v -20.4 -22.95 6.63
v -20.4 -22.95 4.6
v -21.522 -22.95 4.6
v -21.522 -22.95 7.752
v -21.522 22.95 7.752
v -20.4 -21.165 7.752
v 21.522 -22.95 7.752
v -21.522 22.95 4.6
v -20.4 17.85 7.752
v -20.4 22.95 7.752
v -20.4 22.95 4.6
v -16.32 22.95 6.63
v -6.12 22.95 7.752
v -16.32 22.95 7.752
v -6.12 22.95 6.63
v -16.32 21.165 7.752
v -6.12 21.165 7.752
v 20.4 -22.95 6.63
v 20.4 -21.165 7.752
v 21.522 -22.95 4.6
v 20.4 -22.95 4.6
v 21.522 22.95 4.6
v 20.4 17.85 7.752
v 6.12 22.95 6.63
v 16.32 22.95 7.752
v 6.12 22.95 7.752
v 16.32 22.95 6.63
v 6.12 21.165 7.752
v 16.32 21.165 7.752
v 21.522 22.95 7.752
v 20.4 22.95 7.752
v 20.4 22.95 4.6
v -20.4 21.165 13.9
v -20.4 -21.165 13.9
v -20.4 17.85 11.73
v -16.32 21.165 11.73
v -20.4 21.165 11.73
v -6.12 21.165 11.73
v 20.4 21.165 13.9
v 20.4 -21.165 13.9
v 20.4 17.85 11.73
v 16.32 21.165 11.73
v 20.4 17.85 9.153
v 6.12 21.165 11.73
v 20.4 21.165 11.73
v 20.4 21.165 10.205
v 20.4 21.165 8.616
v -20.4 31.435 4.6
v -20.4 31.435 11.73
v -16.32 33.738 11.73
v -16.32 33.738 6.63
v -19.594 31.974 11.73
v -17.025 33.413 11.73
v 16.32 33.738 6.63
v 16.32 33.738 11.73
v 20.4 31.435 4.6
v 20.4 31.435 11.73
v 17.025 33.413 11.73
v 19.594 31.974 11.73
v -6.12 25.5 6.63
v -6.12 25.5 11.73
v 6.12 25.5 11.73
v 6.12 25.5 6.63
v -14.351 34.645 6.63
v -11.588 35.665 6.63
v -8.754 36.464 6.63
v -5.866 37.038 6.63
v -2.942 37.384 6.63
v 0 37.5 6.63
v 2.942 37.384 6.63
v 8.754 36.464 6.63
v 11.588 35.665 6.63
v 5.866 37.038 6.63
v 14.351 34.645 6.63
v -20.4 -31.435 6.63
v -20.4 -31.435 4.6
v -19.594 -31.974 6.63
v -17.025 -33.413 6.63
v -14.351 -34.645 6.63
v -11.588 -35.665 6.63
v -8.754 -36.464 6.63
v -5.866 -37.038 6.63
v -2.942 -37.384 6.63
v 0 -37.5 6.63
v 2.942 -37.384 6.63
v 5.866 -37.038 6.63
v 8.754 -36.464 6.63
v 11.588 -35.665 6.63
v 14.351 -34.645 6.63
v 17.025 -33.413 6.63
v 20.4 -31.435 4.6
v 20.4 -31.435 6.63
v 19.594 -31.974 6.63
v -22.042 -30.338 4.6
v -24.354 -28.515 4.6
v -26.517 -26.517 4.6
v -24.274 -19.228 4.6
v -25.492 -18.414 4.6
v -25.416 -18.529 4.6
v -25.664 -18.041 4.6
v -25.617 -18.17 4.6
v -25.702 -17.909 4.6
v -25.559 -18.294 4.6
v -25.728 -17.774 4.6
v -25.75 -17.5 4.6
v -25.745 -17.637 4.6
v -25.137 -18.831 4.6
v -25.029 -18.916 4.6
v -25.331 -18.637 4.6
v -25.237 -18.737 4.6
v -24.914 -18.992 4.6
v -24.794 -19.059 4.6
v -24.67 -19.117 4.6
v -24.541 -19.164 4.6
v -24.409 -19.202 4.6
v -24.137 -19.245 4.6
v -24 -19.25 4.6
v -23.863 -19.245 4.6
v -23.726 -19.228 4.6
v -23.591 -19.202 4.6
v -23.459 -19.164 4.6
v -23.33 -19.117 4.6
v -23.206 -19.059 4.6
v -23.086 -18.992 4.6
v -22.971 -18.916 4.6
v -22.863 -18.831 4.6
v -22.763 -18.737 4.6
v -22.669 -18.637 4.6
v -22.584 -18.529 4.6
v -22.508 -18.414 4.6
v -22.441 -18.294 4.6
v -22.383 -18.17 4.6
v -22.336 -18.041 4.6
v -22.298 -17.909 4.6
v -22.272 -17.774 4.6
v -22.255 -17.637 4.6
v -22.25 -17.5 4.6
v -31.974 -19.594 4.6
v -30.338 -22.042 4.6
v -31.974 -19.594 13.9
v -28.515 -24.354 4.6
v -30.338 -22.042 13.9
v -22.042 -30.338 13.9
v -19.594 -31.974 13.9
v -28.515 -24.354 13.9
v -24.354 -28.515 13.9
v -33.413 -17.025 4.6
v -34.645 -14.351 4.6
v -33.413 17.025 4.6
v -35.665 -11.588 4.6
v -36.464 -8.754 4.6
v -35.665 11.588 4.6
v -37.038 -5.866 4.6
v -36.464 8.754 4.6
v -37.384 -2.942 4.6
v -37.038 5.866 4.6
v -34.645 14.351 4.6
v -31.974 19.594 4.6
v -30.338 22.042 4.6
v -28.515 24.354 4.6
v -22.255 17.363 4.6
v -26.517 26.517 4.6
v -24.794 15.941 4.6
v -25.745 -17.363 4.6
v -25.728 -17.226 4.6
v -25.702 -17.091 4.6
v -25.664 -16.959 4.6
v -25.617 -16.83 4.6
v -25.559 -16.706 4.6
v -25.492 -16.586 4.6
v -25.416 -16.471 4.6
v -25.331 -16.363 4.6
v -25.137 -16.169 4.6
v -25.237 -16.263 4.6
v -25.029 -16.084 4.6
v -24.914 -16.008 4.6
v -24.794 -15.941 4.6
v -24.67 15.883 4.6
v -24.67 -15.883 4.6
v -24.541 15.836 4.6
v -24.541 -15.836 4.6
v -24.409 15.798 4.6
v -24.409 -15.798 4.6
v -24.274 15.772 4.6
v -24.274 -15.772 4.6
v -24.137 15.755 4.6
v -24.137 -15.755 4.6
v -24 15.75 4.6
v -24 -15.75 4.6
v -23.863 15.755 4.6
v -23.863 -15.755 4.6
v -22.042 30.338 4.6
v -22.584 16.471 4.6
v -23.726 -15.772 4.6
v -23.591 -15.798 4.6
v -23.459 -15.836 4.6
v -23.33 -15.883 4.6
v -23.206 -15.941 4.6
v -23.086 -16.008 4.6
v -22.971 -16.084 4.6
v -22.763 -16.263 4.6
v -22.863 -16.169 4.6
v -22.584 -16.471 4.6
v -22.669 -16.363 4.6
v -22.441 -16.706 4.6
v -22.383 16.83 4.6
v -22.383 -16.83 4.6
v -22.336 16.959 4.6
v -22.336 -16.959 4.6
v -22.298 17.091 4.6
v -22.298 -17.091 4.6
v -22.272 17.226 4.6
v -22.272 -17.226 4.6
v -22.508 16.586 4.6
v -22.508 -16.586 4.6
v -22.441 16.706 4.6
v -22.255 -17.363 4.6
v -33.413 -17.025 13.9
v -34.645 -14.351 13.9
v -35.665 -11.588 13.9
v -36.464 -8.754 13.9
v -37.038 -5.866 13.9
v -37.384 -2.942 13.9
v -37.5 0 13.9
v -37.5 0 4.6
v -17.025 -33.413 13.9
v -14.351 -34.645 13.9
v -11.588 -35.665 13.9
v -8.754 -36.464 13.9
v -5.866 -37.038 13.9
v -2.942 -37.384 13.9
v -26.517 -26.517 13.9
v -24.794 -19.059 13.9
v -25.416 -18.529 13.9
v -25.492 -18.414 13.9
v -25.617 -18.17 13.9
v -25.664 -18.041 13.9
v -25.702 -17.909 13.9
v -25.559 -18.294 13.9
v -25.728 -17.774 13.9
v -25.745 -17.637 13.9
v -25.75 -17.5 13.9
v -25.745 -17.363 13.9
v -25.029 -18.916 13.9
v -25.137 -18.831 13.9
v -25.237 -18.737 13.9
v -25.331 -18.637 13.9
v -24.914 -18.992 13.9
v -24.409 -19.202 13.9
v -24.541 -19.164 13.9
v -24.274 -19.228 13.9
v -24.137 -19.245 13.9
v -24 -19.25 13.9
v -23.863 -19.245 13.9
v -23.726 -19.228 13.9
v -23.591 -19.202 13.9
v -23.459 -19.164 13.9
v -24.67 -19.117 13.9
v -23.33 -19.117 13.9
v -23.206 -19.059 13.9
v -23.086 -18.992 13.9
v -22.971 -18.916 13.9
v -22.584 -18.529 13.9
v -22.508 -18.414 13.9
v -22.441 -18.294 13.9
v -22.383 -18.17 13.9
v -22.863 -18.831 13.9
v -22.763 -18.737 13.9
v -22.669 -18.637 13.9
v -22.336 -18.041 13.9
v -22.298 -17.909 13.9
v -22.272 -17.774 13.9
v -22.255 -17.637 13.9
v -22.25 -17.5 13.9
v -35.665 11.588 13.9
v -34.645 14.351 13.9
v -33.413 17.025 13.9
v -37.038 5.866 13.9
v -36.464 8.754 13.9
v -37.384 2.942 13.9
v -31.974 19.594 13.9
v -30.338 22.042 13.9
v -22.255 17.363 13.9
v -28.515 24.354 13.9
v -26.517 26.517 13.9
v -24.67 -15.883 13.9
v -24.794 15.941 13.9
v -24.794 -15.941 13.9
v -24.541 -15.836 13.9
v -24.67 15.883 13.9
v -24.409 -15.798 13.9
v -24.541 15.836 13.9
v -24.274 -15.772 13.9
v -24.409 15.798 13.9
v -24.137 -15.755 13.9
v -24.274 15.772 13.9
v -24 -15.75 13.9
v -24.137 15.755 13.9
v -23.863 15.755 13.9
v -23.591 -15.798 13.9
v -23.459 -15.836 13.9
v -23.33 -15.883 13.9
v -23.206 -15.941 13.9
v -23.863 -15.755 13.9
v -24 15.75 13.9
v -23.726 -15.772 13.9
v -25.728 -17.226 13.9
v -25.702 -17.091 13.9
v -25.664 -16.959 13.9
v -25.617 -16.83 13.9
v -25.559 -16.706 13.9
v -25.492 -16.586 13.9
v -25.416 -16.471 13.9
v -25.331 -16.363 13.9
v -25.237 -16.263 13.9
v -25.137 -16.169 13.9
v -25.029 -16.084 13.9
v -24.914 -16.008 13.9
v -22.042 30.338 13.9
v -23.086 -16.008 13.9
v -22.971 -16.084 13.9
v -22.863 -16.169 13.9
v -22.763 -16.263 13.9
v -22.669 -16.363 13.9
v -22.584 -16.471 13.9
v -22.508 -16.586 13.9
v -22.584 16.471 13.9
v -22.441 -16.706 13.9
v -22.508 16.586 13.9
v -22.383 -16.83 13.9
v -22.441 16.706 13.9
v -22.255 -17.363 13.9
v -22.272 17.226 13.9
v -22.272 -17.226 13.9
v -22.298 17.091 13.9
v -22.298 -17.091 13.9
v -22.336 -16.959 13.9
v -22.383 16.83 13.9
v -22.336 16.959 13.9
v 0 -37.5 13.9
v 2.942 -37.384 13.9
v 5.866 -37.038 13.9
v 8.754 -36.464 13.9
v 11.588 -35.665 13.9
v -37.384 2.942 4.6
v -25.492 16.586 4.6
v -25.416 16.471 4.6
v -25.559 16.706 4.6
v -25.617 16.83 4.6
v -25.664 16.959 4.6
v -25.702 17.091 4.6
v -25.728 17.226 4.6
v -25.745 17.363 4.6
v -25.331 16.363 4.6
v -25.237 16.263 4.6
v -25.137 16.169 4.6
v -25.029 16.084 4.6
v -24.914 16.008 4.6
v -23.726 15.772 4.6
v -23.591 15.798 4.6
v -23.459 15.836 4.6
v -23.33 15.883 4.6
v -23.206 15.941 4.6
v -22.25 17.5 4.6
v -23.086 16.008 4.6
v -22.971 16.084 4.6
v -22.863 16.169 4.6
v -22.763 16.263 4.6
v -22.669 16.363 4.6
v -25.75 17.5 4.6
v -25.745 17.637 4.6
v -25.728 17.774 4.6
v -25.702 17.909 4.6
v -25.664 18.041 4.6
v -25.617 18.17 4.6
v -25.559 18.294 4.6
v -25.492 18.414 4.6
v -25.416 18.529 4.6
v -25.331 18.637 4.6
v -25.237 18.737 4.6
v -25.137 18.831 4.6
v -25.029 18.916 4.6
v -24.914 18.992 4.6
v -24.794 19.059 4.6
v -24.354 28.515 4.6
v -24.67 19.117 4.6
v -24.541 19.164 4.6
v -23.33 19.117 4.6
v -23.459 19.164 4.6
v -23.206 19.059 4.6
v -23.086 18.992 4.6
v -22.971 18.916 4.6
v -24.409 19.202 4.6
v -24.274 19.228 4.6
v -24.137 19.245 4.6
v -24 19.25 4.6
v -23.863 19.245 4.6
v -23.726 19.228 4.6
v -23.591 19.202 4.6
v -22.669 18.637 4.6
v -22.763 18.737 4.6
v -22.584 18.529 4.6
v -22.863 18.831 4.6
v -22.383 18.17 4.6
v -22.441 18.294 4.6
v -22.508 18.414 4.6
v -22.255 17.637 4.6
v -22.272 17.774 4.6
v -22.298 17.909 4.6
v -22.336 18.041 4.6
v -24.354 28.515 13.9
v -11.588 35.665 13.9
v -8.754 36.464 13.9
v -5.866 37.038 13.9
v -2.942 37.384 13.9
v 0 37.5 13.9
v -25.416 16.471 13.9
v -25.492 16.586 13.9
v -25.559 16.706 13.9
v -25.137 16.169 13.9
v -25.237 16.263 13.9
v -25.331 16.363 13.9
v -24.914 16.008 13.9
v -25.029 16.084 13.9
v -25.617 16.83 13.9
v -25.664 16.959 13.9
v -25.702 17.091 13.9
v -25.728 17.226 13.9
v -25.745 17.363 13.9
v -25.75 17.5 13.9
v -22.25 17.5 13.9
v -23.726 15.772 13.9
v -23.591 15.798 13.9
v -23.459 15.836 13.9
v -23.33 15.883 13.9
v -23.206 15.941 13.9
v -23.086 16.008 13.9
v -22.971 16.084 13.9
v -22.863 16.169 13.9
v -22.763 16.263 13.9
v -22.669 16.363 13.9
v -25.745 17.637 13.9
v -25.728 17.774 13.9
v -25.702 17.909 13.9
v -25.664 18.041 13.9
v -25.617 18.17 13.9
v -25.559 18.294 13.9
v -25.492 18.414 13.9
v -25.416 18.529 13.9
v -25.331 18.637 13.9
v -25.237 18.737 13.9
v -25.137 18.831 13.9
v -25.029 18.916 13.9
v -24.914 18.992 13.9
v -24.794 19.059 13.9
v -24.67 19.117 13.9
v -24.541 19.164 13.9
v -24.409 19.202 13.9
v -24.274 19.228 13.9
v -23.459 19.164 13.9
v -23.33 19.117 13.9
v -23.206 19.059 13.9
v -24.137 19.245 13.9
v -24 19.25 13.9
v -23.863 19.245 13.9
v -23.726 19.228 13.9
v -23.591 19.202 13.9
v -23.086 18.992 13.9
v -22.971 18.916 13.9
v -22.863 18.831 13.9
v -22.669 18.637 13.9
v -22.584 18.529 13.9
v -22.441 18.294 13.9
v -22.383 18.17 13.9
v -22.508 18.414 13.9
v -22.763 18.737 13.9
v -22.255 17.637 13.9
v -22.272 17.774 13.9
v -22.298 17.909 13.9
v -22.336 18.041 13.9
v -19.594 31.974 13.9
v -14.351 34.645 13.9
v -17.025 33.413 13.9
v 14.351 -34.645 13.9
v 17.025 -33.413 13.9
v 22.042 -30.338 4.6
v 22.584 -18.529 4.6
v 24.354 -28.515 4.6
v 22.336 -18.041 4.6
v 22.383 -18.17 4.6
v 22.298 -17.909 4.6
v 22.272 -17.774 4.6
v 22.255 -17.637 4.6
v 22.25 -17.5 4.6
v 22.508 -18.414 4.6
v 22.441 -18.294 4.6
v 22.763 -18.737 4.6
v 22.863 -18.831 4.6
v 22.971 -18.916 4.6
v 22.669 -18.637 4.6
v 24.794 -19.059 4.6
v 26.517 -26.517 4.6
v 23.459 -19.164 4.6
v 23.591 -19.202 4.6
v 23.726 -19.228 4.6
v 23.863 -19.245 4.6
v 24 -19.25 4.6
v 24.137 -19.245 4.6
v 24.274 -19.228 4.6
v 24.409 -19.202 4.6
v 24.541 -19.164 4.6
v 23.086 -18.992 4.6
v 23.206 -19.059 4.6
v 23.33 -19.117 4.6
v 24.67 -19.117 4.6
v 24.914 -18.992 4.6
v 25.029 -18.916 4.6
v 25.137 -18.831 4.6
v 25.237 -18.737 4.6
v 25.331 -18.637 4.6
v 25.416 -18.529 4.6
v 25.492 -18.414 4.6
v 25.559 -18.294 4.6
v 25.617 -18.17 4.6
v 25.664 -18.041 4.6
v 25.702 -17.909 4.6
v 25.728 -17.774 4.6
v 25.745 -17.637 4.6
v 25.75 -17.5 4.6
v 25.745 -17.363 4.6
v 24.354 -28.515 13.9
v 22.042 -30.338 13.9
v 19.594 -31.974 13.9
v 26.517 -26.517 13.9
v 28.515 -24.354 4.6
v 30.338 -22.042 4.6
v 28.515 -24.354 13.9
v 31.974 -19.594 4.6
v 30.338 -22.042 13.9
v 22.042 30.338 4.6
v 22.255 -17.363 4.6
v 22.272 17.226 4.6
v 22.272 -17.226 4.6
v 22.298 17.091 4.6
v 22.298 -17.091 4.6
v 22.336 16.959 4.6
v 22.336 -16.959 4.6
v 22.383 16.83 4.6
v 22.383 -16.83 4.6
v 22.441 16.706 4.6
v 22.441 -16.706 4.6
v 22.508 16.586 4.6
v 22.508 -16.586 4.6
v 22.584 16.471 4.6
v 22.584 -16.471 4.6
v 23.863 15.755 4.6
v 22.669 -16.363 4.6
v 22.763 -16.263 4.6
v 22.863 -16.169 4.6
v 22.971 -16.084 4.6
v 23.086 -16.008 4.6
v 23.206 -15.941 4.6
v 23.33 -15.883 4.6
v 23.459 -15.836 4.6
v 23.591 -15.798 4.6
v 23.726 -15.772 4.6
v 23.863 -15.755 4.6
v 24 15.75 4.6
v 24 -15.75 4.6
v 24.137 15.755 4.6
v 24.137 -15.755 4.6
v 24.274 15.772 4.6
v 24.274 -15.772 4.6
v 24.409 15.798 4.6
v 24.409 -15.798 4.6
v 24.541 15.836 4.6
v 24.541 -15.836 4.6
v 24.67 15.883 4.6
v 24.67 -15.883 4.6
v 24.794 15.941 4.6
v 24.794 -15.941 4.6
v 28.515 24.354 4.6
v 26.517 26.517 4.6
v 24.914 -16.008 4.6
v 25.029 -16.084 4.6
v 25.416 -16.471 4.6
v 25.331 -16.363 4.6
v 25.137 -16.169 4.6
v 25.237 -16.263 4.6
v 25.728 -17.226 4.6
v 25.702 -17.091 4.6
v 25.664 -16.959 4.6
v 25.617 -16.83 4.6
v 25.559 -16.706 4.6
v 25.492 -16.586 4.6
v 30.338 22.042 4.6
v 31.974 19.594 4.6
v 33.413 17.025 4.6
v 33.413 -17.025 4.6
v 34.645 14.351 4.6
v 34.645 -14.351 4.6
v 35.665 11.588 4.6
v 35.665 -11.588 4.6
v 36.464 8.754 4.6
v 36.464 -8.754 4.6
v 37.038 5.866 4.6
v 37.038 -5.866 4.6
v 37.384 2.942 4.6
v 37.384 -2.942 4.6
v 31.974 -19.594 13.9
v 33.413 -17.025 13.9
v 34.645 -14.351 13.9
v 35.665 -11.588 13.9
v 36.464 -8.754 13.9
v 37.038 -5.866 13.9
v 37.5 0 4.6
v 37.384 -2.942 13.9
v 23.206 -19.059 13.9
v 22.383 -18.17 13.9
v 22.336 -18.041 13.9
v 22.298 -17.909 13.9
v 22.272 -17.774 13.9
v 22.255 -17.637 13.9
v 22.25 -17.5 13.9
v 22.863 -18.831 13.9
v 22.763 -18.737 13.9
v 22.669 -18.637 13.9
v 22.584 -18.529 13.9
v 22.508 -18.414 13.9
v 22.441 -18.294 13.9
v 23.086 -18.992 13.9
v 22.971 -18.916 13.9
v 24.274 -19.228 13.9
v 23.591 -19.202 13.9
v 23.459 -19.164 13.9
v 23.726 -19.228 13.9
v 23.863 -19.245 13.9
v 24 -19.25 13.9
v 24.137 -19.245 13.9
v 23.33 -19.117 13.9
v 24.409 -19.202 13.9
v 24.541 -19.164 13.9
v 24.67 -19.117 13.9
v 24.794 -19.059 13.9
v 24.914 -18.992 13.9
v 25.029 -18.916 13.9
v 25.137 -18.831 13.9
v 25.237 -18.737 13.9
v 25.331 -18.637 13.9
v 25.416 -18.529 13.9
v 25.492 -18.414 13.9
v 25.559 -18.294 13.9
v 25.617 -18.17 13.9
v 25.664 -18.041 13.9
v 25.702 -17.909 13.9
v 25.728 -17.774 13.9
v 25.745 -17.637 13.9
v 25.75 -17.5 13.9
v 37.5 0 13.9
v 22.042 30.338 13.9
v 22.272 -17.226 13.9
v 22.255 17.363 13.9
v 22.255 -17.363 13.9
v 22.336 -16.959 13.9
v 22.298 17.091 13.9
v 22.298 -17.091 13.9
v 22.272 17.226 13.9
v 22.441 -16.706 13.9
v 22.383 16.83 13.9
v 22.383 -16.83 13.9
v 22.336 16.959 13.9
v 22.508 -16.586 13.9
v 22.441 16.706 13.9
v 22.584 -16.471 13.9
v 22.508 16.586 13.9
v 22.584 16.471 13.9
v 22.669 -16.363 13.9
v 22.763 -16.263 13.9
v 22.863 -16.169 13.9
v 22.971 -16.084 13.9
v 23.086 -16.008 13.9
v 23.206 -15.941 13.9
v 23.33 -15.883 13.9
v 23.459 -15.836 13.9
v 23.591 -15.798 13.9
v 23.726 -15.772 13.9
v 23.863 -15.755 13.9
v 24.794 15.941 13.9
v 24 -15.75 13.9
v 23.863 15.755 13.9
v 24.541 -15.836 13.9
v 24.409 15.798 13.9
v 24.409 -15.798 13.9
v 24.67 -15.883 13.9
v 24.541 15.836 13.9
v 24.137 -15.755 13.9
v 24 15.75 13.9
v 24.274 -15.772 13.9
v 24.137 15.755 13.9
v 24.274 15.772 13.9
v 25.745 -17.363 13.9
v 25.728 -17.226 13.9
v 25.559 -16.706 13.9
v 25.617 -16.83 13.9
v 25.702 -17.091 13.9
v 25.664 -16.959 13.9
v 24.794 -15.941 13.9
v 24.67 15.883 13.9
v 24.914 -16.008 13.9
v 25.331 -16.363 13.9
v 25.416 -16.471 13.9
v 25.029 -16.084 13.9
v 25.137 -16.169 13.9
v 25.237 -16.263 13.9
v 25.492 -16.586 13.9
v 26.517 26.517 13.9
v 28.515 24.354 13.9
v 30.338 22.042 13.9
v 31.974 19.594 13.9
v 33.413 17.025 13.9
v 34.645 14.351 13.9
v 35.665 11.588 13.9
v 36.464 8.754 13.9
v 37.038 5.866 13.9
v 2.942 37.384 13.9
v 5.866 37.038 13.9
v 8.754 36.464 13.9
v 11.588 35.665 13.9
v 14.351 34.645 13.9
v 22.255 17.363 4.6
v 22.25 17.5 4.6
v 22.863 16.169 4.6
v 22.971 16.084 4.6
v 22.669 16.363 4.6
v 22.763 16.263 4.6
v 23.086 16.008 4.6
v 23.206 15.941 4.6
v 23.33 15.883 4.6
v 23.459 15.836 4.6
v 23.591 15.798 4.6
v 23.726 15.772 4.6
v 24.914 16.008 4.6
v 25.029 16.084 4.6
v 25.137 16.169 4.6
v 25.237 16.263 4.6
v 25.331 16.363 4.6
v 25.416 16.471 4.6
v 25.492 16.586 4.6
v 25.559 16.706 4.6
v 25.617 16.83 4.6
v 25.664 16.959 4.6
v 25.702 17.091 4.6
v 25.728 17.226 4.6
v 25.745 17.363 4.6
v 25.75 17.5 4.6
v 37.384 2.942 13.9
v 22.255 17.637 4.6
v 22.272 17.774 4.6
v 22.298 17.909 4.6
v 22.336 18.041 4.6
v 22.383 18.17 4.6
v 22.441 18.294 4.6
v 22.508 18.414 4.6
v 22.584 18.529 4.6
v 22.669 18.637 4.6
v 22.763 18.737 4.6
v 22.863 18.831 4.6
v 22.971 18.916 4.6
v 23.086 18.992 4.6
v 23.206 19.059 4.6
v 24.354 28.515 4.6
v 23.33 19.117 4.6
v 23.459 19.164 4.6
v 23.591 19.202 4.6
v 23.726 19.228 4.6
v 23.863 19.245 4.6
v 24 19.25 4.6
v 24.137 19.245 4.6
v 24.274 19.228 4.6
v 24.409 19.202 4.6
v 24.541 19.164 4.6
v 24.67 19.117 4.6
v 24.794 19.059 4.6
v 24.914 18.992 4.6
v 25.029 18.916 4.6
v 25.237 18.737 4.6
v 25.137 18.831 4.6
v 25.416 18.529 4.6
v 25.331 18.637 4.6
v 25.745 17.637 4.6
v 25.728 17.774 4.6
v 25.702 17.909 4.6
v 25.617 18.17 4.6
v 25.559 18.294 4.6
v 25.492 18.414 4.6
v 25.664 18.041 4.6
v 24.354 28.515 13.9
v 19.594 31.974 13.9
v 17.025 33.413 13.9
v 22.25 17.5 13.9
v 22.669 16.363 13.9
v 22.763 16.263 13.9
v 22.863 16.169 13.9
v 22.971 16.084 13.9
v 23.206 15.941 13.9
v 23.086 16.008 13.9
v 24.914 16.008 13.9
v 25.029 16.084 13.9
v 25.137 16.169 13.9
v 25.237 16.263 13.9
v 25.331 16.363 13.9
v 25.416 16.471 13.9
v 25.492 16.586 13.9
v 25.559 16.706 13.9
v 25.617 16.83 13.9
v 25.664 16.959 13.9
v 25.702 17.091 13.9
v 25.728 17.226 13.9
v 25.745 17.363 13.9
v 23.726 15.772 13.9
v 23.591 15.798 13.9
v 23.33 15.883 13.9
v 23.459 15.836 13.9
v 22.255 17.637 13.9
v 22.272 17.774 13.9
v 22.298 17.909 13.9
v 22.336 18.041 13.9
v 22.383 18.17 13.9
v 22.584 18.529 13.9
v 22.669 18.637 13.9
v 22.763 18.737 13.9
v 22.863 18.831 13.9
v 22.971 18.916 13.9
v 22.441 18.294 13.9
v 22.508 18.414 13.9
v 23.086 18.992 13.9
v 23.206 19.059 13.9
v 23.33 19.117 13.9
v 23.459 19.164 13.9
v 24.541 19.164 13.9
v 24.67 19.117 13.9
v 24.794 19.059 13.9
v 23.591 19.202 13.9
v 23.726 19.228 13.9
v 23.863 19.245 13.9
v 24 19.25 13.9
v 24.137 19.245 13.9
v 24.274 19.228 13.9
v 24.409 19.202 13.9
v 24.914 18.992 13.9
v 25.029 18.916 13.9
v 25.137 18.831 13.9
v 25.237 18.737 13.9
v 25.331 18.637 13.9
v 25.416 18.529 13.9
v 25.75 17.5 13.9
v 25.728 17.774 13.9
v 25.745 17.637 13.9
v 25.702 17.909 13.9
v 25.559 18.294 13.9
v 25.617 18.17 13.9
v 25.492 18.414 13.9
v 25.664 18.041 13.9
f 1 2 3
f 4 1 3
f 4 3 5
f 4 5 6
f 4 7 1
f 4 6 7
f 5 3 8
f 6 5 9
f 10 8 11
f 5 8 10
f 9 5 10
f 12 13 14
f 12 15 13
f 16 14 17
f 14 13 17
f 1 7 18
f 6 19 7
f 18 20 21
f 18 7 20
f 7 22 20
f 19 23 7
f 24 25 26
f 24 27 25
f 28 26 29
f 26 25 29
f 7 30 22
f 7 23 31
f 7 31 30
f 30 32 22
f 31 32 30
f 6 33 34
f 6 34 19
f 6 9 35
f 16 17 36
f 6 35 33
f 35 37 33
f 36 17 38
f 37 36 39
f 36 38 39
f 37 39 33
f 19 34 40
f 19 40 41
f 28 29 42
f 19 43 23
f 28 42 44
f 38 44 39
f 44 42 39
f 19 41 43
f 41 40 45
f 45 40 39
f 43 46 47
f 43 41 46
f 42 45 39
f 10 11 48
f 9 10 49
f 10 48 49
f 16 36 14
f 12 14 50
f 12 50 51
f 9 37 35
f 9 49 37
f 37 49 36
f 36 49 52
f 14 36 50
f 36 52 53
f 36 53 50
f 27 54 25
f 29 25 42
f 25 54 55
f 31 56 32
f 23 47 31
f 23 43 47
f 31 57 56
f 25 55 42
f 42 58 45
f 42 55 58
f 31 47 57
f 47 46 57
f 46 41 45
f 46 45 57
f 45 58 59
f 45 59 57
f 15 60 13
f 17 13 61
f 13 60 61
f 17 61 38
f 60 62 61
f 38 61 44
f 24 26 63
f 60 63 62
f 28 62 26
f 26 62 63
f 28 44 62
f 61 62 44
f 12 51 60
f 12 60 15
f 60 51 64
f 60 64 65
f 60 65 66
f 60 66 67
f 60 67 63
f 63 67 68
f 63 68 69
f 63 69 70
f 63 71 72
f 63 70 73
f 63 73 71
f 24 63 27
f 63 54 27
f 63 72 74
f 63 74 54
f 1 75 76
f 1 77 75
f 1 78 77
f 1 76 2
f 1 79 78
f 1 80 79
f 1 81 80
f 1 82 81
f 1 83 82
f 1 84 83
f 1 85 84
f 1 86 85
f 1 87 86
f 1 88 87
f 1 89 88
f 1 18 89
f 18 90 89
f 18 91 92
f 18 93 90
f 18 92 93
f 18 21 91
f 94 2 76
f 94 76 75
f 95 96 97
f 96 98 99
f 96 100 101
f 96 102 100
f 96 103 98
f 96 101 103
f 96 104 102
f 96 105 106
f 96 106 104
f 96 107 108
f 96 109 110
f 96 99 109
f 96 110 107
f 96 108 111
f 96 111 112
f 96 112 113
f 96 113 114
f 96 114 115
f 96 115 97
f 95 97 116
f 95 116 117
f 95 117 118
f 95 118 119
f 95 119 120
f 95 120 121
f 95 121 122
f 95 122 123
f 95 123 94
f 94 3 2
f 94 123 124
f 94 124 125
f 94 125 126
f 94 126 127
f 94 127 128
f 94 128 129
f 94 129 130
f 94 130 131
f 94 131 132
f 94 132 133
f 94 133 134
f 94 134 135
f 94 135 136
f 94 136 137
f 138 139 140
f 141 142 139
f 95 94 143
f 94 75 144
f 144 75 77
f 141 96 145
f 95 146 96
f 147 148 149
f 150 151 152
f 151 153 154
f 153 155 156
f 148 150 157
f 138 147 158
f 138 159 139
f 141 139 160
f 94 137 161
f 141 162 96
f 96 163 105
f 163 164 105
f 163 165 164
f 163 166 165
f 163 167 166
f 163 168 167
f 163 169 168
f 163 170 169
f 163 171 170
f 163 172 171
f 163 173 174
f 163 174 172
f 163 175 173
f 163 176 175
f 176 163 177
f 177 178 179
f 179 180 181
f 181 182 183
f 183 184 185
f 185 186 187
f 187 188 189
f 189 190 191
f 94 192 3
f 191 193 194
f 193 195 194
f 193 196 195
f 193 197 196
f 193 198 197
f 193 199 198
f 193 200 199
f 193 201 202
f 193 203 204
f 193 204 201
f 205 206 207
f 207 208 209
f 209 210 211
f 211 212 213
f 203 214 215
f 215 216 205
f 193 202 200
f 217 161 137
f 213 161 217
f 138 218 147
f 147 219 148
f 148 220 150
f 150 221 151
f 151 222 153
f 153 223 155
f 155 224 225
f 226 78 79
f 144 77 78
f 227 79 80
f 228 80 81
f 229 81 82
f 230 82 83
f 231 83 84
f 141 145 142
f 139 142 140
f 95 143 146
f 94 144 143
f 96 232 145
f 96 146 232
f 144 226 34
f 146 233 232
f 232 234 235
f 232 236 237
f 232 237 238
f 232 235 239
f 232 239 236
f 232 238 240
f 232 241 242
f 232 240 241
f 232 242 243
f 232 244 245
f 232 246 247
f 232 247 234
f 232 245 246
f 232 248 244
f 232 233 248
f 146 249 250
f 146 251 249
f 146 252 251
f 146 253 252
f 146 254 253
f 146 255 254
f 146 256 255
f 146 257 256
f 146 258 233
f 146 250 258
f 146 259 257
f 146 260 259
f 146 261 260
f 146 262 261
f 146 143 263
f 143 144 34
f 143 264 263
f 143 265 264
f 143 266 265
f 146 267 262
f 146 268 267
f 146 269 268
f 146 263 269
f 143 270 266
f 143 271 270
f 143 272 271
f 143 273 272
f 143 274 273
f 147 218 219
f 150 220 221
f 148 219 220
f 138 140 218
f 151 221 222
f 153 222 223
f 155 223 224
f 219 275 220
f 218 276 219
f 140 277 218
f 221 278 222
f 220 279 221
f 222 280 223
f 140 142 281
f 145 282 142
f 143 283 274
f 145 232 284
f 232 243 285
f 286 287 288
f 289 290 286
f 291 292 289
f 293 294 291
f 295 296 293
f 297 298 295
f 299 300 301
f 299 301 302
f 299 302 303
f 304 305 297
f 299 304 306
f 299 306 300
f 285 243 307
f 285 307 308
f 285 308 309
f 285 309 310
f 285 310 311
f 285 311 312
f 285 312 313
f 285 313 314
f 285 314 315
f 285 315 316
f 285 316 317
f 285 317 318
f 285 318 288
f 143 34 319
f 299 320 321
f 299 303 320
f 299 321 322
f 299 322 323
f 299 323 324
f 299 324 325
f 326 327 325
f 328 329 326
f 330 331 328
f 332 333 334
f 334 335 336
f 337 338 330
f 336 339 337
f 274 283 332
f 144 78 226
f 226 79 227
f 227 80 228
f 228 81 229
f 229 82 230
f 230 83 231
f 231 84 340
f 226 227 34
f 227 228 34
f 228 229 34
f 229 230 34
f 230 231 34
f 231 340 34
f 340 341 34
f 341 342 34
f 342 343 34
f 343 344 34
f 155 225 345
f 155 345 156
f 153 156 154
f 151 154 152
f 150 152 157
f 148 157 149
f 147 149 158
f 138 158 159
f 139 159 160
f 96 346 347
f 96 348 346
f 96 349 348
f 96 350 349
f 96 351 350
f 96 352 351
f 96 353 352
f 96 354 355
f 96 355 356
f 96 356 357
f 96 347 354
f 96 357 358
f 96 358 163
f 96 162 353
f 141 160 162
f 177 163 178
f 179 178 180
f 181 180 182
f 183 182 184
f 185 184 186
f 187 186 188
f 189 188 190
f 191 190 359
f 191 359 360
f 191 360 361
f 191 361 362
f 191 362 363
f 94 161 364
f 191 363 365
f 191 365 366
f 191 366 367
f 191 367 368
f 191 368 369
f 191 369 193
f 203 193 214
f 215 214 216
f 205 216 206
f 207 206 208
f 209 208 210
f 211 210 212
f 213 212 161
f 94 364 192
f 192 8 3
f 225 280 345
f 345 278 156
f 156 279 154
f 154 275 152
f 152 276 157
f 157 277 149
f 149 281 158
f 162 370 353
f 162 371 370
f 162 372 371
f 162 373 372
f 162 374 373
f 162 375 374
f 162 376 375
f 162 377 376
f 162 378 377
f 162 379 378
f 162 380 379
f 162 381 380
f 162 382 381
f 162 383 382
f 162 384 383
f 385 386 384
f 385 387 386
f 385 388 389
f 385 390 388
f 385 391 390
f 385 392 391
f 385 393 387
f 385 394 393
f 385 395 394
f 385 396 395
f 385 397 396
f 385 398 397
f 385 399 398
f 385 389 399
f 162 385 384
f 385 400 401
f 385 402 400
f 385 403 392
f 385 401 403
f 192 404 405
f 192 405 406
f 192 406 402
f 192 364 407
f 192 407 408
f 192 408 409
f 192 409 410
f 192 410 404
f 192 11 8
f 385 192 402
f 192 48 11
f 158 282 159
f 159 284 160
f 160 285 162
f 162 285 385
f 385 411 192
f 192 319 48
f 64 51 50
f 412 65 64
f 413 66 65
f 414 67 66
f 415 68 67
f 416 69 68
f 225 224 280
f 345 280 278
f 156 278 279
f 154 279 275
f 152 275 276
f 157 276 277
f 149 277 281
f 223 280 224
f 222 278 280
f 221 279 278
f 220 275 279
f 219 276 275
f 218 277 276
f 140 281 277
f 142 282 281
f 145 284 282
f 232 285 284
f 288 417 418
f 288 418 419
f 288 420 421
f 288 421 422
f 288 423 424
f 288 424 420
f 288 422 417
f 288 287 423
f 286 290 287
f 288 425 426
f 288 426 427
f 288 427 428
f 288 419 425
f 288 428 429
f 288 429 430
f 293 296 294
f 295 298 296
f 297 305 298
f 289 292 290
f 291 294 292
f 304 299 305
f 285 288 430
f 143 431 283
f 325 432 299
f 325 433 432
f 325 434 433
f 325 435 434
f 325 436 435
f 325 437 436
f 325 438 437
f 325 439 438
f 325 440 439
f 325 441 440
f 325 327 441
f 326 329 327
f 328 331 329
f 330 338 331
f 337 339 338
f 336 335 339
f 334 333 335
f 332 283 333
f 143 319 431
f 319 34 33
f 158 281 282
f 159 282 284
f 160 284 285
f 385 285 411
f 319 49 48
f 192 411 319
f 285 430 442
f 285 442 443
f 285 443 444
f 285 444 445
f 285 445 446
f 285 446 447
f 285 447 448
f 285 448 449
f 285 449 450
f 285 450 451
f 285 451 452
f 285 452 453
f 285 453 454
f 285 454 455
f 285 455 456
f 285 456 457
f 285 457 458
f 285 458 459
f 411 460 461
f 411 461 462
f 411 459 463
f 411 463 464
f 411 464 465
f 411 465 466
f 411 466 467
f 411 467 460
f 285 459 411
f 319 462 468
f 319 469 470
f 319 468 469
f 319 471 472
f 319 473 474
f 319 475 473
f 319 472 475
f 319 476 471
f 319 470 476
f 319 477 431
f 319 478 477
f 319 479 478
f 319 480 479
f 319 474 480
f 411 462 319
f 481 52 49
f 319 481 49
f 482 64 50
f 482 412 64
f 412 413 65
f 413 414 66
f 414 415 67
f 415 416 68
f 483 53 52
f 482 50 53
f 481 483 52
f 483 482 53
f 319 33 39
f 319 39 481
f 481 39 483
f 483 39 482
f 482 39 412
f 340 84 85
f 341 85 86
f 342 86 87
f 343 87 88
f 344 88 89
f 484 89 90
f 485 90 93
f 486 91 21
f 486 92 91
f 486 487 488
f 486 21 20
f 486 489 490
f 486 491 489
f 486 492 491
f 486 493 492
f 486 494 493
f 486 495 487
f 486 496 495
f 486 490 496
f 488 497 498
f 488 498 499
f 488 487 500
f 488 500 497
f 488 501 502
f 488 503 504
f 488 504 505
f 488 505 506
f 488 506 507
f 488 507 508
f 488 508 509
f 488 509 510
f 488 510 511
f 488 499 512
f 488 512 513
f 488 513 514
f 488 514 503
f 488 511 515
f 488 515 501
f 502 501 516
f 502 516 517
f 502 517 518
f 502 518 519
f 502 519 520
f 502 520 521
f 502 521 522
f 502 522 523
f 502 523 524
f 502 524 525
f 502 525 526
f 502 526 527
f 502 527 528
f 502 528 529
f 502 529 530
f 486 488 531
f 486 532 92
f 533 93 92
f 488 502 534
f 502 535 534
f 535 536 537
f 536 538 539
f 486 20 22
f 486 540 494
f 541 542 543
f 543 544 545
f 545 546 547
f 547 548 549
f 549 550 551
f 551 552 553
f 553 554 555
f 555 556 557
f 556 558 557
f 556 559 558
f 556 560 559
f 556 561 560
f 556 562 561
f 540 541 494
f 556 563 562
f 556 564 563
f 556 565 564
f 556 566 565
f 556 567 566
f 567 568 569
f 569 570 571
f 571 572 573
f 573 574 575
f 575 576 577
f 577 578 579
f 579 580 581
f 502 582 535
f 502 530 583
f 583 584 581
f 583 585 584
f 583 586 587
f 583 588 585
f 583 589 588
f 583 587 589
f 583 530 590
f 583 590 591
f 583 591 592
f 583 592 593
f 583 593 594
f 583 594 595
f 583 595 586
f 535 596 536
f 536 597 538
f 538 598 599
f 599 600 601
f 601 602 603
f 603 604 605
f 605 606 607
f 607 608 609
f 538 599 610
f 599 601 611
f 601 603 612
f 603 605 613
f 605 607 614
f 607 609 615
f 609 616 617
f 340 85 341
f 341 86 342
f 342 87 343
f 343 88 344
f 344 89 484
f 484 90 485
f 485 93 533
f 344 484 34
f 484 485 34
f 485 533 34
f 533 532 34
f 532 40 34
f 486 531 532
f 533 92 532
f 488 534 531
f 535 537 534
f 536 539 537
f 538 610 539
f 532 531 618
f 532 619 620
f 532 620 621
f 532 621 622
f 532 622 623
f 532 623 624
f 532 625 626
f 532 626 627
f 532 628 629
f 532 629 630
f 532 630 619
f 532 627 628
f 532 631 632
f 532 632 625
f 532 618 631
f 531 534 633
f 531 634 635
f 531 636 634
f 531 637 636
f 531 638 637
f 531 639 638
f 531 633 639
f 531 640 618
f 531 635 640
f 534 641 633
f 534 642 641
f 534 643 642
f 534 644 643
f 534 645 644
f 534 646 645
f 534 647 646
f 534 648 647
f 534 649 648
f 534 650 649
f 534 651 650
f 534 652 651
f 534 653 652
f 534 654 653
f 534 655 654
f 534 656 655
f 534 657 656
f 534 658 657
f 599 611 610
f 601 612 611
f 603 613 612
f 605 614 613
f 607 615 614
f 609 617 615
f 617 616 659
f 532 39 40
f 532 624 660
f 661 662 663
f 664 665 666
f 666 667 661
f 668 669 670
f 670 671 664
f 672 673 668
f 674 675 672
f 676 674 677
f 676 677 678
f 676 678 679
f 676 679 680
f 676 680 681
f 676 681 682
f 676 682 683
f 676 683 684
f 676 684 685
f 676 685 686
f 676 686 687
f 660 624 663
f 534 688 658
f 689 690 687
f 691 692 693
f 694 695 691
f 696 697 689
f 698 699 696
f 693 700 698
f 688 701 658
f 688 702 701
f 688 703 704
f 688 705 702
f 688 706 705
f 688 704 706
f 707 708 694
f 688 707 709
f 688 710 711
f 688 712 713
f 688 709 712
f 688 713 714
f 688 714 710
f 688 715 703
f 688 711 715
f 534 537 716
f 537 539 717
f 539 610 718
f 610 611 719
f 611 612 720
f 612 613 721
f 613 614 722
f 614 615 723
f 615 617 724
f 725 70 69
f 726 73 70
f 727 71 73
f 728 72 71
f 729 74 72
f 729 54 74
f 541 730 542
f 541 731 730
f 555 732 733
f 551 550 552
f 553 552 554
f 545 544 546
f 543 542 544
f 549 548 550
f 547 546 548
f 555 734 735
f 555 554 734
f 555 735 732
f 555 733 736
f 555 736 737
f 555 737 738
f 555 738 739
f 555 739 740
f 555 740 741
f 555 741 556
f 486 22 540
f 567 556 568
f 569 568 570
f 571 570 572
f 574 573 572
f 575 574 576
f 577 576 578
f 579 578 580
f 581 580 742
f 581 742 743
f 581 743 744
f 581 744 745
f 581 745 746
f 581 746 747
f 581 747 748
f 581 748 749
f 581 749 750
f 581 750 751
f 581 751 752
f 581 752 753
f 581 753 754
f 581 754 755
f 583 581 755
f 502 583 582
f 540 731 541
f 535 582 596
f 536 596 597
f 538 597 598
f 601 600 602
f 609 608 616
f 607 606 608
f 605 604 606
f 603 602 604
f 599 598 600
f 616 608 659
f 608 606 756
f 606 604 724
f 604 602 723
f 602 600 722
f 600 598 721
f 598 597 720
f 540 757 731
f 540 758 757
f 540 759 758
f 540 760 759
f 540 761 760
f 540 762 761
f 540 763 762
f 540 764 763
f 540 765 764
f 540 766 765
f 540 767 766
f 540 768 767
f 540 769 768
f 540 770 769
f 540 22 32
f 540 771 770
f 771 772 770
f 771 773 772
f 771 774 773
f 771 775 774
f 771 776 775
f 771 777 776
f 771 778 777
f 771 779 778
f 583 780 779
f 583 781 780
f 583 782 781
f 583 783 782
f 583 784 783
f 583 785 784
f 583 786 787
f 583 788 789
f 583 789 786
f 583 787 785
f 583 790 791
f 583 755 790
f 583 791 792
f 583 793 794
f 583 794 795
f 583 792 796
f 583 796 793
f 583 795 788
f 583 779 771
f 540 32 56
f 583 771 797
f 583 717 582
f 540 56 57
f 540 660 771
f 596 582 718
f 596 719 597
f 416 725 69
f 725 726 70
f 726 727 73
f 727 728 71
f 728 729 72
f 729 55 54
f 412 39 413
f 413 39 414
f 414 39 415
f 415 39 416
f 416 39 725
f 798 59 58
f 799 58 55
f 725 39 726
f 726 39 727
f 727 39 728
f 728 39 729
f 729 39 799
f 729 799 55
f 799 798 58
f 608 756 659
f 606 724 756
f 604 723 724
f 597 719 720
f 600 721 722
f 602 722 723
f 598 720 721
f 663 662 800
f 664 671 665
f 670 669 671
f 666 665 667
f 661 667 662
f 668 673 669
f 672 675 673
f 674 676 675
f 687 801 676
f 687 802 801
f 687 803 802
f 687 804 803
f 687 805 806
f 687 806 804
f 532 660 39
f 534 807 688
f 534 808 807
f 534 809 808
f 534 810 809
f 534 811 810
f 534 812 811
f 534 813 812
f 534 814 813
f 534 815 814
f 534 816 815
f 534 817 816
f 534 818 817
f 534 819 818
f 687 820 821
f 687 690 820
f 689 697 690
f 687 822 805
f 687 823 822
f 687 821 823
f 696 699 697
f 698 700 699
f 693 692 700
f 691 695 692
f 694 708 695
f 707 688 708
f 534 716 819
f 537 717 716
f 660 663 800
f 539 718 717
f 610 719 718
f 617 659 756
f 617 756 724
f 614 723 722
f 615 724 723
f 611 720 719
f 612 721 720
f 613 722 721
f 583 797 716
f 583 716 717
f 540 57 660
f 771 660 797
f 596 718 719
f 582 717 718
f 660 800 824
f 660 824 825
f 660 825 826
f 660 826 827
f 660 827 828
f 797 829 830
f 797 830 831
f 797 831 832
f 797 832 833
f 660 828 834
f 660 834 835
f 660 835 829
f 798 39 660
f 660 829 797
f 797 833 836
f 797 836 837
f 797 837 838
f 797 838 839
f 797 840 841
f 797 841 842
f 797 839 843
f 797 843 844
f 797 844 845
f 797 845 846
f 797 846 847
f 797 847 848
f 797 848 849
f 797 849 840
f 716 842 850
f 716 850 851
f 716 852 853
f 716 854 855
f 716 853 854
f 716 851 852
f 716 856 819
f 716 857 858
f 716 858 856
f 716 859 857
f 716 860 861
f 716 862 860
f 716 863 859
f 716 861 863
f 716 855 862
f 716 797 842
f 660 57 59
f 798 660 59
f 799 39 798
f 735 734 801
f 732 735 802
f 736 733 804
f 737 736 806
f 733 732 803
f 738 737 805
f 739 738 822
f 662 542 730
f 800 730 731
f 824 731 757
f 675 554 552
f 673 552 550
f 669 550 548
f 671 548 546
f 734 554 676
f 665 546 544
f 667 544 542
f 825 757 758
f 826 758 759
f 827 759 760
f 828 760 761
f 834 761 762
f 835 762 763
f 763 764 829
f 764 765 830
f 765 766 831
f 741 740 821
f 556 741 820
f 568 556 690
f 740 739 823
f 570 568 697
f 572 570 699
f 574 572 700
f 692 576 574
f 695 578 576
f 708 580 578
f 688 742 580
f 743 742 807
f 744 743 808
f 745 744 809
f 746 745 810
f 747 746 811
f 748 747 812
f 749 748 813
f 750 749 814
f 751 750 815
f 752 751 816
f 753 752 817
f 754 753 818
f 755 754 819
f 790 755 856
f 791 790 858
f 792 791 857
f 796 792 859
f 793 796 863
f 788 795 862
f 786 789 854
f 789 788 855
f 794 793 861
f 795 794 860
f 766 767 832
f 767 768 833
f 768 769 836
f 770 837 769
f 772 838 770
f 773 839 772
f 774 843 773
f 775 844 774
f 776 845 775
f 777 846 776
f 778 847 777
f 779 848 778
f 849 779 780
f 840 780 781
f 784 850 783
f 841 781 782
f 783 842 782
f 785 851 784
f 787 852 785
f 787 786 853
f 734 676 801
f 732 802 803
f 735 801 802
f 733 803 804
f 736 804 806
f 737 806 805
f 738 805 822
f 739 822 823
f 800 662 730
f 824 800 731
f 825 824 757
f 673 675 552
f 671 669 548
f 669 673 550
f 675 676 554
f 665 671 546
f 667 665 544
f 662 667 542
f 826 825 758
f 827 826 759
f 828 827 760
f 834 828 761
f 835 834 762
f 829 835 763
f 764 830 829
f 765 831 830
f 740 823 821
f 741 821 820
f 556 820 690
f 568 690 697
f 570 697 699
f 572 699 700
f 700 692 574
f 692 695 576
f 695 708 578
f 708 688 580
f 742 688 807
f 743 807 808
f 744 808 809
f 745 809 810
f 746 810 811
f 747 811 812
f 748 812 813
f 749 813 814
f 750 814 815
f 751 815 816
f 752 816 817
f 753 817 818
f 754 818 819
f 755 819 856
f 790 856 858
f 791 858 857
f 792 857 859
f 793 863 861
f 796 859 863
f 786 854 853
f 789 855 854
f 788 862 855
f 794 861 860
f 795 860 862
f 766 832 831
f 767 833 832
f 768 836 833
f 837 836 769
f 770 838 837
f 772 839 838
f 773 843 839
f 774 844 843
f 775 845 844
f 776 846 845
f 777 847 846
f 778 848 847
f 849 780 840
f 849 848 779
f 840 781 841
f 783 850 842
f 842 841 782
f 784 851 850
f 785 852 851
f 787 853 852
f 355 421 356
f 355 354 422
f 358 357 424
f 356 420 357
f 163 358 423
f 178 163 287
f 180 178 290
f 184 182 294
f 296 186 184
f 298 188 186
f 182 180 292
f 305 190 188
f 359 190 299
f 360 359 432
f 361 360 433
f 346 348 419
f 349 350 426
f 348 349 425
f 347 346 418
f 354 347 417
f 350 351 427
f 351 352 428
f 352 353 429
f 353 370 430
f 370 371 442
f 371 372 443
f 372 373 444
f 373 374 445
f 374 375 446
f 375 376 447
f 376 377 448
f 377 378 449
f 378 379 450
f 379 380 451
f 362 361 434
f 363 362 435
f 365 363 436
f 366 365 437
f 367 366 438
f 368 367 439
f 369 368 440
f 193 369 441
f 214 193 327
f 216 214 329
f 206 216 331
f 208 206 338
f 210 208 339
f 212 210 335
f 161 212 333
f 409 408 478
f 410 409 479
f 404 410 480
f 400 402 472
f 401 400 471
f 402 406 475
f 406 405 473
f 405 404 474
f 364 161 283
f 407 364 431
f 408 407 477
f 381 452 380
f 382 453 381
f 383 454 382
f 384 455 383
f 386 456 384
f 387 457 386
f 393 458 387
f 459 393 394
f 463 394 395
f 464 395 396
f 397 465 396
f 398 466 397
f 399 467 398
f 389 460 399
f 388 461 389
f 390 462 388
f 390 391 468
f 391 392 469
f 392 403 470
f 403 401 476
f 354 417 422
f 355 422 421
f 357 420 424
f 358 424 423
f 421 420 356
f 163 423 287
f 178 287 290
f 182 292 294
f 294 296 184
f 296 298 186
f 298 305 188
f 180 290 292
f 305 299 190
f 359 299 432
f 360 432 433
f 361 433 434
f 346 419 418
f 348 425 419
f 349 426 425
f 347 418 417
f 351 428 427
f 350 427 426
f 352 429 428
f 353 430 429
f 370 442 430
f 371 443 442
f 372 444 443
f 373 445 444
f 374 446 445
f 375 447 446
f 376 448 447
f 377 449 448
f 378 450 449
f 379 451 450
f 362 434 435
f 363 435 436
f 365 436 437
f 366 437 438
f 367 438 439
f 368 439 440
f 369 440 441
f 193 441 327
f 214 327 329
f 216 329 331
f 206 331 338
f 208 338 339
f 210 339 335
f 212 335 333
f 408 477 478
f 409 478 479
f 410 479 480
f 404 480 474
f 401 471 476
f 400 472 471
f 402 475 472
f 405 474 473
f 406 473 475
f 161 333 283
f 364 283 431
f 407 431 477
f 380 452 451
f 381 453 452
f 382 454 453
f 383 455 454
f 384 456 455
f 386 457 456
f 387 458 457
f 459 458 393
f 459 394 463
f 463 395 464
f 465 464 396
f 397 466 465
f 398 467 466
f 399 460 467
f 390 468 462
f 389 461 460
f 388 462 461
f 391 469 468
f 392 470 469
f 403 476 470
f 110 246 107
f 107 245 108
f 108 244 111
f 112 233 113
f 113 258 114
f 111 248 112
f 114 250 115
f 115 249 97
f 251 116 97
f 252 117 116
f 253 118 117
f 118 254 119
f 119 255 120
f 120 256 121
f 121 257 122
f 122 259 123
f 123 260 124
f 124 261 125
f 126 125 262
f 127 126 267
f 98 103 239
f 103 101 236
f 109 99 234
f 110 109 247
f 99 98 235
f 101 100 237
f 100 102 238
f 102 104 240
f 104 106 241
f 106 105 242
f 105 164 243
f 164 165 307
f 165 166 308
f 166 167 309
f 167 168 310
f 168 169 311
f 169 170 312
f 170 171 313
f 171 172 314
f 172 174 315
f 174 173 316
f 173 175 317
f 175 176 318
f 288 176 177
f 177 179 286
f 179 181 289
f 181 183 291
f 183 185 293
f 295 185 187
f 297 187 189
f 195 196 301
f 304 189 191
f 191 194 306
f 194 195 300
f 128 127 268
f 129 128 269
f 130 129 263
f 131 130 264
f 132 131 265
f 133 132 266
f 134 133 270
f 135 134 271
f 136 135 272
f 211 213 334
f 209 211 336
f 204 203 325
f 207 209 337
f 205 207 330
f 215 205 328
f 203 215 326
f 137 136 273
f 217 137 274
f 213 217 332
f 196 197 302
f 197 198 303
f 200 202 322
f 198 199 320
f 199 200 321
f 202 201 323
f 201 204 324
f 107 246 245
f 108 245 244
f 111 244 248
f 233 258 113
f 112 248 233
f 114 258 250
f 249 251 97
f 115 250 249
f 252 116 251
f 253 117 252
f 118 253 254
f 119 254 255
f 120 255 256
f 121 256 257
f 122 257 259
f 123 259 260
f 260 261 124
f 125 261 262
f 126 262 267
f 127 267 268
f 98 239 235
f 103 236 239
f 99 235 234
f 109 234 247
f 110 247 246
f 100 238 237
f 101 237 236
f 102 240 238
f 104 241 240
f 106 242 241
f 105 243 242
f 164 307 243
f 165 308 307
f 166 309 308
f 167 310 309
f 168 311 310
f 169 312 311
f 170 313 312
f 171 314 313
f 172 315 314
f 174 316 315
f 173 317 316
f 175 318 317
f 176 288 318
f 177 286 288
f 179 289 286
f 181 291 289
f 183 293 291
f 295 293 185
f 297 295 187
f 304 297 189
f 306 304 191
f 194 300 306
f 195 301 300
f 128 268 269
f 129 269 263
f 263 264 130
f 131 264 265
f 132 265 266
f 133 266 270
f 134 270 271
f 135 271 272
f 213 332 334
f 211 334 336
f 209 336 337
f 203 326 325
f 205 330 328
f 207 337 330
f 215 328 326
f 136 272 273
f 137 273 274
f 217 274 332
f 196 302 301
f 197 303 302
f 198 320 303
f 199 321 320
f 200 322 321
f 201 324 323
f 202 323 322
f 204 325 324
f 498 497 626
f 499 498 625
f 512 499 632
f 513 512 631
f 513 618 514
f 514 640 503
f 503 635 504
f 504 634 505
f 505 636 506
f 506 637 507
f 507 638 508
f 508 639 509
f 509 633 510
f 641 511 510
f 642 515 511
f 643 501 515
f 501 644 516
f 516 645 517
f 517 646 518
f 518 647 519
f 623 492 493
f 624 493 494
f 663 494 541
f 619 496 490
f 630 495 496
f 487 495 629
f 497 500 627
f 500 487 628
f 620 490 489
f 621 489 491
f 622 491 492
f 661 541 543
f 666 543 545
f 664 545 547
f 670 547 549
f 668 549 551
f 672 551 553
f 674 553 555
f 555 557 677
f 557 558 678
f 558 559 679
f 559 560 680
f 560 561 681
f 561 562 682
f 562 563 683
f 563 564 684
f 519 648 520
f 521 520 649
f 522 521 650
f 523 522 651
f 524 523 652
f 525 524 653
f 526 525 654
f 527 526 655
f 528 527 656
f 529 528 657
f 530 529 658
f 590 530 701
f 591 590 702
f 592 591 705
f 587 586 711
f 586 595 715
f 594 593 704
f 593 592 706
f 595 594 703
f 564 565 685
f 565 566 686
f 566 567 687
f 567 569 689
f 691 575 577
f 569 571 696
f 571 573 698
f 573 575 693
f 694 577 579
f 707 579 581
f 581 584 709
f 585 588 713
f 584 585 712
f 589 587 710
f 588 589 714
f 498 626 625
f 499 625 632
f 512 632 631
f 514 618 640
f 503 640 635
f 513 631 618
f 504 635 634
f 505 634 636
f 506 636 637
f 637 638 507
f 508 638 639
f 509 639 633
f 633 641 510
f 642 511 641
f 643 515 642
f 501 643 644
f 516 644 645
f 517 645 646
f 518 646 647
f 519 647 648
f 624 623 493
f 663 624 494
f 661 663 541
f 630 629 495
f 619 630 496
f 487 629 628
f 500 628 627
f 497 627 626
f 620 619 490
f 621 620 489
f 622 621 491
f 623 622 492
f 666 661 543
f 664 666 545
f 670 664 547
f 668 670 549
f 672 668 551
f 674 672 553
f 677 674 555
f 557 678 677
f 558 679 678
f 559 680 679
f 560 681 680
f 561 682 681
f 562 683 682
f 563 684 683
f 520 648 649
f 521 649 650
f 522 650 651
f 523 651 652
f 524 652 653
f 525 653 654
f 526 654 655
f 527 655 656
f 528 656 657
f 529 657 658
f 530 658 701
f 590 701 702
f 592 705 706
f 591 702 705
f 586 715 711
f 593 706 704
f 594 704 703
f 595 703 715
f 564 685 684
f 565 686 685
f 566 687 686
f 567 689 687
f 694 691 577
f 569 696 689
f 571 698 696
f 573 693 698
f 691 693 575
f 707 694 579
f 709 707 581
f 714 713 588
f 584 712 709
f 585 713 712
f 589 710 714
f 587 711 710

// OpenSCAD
$fn=80;

module cooler() {
    difference() {
        union() {
            translate([0,0,4.5/2]) {
                cube([60,45,4.5], center=true);
            
                translate([0,0,(3.1/2)+(4.5/2)]) {
                    cube([42.2,45,3.1], center=true);
                    translate([0,0,7.8/2]) cube([40,41.5,7.8], center=true);
                }
            }
            //wires
            translate([-18,30,(7+4.5)/2]) cube([4,25,(7+4.5)], center=true);
            translate([18,30,(7+4.5)/2]) cube([4,25,(7+4.5)], center=true);
            
            // junction jumper
            translate([0,20,(7+4.5)/2]) cube([12,10,(7+4.5)], center=true);
            
            // heat pipes
            translate([0,24,(2+4.5)/2]) cube([40,60,(2+4.5)], center=true);
            translate([0,-24,(2+4.5)/2]) cube([40,60,(2+4.5)], center=true);
        }
        translate([24,35/2,-1]) cylinder(d=3.5,h=100);
        translate([-24,35/2,-1]) cylinder(d=3.5,h=100);
        translate([-24,-35/2,-1]) cylinder(d=3.5,h=100);
        translate([24,-35/2,-1]) cylinder(d=3.5,h=100);
    }
}

//%cooler();

difference() {
    translate([0,0,4.6]) cylinder(d=75,h=9.3);
    scale(1.02) cooler();
    
    translate([24,35/2,-1]) cylinder(d=3.5,h=100);
    translate([-24,35/2,-1]) cylinder(d=3.5,h=100);
    translate([-24,-35/2,-1]) cylinder(d=3.5,h=100);
    translate([24,-35/2,-1]) cylinder(d=3.5,h=100);
}
